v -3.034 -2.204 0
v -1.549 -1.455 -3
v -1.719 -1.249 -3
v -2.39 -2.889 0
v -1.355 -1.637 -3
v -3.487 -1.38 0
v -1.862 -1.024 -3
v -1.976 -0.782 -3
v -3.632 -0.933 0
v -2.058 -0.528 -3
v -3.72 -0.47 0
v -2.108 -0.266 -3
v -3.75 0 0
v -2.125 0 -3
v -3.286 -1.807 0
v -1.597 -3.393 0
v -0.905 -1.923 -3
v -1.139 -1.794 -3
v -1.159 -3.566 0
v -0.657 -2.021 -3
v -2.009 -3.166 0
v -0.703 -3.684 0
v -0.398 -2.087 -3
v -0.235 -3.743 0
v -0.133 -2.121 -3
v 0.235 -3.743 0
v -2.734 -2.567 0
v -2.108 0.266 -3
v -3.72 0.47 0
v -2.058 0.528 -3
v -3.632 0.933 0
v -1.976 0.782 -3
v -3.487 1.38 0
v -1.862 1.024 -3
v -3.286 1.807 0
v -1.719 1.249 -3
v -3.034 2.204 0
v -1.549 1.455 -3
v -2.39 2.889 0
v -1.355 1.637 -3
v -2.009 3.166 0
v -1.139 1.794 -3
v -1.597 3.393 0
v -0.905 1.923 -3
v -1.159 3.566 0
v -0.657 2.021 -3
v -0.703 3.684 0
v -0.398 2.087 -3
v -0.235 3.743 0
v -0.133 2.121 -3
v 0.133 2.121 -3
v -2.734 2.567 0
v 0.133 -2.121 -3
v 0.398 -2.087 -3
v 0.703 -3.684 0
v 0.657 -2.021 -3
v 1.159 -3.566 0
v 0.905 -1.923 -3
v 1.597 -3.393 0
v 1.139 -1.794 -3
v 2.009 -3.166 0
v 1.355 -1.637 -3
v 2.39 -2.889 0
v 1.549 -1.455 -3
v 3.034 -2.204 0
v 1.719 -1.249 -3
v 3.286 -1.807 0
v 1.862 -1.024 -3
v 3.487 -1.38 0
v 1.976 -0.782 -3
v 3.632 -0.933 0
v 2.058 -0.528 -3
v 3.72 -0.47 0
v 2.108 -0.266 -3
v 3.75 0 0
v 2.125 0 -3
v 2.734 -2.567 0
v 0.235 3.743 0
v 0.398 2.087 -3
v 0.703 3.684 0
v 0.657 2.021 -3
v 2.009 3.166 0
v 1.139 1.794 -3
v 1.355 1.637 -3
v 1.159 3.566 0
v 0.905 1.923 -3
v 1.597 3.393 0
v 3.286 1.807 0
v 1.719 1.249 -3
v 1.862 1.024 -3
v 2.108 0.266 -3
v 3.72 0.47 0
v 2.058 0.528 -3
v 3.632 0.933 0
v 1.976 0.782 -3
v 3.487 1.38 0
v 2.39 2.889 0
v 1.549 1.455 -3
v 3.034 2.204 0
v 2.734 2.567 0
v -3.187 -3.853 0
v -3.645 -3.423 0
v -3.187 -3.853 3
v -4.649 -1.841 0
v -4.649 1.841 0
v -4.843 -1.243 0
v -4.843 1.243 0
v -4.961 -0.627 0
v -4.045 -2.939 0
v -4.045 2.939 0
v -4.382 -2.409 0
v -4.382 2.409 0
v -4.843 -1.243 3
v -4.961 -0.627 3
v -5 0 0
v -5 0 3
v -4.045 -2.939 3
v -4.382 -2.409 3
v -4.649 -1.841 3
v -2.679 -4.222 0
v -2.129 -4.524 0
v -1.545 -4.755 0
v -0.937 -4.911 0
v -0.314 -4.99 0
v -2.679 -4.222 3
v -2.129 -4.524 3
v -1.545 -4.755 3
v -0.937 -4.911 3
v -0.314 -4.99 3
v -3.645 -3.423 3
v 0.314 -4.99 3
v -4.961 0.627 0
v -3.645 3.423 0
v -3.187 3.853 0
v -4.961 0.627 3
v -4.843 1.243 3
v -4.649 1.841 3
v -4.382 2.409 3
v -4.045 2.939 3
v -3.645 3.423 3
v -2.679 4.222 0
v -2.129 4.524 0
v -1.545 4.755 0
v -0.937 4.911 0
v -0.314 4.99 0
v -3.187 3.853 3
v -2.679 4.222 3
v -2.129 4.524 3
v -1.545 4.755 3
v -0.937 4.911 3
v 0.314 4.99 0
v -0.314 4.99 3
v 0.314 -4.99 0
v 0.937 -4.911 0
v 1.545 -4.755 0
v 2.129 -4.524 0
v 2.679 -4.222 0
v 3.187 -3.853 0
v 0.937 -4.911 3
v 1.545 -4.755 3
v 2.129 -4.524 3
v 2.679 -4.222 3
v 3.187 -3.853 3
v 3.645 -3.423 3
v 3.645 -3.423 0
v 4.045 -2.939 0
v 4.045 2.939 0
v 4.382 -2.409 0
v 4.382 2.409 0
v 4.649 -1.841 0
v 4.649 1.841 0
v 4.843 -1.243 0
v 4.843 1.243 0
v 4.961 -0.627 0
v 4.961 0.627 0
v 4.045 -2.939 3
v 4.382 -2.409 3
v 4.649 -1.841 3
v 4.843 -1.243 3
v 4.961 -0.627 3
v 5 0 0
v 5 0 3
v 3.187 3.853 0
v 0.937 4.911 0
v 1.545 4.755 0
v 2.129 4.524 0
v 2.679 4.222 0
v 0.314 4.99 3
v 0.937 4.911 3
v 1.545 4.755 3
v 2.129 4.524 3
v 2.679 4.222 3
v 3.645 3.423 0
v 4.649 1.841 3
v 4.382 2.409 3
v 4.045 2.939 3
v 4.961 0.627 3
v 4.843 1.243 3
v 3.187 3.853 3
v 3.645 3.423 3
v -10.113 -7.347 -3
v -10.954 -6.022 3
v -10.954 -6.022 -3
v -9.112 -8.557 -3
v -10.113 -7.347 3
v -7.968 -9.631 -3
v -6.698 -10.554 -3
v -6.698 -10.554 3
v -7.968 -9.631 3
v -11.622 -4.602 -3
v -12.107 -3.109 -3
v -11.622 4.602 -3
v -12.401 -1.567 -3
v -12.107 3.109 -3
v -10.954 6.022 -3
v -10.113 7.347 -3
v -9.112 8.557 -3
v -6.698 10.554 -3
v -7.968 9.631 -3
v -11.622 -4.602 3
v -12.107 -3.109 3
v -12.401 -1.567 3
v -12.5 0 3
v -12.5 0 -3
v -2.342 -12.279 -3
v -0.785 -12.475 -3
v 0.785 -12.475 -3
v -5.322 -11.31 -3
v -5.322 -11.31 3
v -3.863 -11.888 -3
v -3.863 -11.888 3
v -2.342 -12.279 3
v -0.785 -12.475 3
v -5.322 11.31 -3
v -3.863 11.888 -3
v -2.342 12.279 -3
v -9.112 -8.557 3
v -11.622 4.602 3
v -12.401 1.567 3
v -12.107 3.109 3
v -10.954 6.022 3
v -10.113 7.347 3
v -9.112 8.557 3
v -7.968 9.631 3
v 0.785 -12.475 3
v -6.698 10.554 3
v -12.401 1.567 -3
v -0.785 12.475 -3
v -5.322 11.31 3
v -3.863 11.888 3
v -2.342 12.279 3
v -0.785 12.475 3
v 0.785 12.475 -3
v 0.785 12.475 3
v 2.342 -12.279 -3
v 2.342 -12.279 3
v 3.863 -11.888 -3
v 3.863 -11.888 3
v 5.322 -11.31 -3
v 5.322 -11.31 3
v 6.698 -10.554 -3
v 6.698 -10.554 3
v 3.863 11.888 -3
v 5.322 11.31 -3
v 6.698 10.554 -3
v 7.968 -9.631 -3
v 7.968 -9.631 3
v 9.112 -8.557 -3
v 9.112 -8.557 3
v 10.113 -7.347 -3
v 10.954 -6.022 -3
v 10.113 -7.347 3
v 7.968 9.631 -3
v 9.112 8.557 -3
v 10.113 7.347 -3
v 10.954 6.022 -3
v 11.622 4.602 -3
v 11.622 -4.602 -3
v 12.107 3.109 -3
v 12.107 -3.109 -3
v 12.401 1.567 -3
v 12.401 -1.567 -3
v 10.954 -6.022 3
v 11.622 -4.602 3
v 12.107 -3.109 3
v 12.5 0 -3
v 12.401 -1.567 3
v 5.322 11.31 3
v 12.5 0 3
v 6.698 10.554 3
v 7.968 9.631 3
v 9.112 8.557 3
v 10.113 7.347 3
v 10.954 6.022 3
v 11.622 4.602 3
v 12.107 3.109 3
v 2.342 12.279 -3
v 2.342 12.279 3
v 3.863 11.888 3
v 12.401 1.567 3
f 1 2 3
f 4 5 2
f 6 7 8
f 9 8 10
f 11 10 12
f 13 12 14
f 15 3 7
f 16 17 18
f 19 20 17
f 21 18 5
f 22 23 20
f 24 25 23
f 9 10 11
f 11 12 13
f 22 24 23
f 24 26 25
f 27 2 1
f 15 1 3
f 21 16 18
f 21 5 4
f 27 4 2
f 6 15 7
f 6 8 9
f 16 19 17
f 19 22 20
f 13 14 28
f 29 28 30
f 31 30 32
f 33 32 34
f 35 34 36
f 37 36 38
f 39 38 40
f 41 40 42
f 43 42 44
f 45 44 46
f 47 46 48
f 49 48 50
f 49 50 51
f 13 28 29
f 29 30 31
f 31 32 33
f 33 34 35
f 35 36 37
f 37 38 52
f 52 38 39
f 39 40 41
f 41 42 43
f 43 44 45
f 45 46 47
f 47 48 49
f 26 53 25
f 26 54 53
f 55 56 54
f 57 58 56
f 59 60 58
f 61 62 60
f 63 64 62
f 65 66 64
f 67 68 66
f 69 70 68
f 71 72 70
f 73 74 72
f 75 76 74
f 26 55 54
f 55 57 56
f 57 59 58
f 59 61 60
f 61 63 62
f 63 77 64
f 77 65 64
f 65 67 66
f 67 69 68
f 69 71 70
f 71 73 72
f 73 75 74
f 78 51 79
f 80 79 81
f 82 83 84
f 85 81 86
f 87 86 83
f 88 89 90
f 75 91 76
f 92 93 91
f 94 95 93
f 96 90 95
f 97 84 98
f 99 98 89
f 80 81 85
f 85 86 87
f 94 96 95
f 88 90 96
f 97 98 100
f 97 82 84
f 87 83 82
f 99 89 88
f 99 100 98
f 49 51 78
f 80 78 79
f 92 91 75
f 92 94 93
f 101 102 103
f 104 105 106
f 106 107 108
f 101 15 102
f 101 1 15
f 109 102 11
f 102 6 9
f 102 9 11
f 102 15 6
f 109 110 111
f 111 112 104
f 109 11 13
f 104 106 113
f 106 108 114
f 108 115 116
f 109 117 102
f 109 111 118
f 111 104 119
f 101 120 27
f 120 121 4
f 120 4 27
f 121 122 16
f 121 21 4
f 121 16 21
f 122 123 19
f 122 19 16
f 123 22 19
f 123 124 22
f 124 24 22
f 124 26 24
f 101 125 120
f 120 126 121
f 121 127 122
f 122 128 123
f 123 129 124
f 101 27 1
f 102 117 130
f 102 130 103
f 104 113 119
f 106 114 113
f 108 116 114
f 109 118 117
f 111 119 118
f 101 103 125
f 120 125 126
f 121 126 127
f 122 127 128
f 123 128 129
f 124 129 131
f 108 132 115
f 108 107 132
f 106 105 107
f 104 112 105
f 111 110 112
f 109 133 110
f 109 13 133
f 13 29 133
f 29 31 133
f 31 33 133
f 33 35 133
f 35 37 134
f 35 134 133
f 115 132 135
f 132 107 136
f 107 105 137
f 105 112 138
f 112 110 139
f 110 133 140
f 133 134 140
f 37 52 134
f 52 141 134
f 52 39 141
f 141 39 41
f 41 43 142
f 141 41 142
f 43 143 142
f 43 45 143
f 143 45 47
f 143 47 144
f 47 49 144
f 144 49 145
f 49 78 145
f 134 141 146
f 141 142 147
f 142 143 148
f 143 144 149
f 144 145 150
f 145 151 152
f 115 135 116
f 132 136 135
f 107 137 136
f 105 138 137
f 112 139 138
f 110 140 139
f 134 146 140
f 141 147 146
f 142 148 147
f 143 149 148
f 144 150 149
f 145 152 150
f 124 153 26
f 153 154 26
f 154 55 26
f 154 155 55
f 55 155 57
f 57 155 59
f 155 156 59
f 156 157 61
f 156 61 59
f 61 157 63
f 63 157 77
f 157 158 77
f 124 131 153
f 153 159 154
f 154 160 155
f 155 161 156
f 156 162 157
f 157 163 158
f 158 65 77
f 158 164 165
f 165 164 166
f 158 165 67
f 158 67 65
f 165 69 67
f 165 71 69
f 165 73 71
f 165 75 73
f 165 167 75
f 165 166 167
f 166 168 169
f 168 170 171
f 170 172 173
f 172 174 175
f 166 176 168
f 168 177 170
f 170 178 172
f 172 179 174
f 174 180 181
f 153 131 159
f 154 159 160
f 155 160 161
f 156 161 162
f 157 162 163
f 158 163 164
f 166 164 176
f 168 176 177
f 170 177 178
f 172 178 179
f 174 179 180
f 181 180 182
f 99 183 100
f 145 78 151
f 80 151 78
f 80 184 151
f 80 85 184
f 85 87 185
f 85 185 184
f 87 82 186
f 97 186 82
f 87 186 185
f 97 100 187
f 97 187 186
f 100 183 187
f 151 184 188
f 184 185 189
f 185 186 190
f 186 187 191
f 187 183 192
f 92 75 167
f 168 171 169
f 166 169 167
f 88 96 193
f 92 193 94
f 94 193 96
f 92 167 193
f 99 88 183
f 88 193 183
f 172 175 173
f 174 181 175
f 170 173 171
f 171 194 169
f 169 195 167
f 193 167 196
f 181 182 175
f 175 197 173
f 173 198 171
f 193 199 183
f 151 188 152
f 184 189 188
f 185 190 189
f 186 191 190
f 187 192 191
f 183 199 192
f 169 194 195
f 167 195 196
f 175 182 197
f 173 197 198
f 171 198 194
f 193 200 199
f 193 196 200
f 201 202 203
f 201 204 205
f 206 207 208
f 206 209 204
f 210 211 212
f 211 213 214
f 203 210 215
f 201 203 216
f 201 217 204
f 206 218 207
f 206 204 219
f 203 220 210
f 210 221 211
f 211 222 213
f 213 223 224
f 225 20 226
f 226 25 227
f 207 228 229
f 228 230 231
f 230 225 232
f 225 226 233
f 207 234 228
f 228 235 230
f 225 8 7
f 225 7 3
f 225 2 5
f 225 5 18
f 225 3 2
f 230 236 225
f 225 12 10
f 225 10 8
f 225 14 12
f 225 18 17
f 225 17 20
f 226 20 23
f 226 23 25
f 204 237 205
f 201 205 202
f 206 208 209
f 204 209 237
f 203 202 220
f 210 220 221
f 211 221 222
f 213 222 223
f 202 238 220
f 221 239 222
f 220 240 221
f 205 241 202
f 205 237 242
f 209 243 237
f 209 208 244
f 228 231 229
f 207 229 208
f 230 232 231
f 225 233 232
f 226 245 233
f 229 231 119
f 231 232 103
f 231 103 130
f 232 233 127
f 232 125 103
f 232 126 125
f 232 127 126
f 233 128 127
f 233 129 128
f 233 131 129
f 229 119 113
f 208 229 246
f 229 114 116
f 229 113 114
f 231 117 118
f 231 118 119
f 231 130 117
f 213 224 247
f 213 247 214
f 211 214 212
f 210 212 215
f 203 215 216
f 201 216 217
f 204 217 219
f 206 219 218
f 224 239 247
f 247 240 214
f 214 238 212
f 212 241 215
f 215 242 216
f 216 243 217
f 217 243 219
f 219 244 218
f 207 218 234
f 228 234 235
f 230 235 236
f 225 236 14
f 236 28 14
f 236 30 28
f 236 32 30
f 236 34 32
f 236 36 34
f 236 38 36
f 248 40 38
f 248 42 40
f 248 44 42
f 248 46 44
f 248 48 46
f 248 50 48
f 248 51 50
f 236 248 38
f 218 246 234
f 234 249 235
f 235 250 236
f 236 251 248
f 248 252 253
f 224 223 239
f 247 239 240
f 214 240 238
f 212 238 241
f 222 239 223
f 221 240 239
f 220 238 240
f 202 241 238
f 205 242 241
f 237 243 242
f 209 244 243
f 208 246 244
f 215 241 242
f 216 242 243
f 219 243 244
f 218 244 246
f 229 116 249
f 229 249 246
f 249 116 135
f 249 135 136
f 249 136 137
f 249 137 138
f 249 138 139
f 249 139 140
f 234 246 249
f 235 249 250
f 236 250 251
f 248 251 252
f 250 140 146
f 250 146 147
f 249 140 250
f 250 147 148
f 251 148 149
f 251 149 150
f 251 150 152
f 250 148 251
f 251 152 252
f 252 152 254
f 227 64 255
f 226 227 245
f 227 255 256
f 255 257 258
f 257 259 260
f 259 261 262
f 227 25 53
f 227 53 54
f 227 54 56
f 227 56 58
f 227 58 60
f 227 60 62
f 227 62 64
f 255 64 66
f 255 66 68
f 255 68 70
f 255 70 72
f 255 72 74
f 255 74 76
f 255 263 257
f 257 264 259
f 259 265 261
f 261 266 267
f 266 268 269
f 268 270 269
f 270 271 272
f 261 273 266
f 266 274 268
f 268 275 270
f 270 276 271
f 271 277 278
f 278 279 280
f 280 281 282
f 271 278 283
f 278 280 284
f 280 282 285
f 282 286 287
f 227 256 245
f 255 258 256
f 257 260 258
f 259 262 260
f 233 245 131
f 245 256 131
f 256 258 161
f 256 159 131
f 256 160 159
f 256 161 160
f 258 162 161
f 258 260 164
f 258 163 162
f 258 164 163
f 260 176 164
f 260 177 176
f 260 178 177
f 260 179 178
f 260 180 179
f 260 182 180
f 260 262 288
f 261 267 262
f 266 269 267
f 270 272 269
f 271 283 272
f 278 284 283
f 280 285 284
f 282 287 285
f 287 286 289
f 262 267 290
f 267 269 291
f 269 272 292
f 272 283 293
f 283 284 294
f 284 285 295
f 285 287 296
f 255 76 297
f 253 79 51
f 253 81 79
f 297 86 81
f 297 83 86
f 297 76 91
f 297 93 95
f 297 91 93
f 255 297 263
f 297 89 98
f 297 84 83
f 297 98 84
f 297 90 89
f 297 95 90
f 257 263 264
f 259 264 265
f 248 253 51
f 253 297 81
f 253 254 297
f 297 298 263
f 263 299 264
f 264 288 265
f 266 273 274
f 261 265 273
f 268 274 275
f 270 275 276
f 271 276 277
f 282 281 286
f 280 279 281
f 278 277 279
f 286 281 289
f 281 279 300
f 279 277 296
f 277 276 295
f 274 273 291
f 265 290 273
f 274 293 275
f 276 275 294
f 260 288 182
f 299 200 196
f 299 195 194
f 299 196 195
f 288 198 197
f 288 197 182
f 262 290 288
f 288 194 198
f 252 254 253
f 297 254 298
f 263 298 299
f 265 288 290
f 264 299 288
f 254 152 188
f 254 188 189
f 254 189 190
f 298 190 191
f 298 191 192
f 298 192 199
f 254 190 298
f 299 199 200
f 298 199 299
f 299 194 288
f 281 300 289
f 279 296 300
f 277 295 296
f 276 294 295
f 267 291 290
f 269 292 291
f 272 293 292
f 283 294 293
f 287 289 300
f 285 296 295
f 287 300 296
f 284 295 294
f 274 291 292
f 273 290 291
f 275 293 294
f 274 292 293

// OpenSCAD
$fn = 50;


difference() {
	union() {
		translate(v = [0, 0, -3.0000000000]) {
			cylinder(h = 6, r = 12.5000000000);
		}
	}
	union() {
		translate(v = [0, 0, 0]) {
			rotate(a = [0, 0, 0]) {
				difference() {
					union() {
						translate(v = [0, 0, -6.0000000000]) {
							cylinder(h = 6, r = 2.0000000000);
						}
						translate(v = [0, 0, -3]) {
							cylinder(h = 3, r1 = 2.1250000000, r2 = 3.7500000000);
						}
						translate(v = [0, 0, -6.0000000000]) {
							cylinder(h = 6, r = 2.1250000000);
						}
						translate(v = [0, 0, -6.0000000000]) {
							cylinder(h = 6, r = 2.0000000000);
						}
					}
					union();
				}
			}
		}
		#cylinder(h = 3, r = 5.0000000000);
	}
}
